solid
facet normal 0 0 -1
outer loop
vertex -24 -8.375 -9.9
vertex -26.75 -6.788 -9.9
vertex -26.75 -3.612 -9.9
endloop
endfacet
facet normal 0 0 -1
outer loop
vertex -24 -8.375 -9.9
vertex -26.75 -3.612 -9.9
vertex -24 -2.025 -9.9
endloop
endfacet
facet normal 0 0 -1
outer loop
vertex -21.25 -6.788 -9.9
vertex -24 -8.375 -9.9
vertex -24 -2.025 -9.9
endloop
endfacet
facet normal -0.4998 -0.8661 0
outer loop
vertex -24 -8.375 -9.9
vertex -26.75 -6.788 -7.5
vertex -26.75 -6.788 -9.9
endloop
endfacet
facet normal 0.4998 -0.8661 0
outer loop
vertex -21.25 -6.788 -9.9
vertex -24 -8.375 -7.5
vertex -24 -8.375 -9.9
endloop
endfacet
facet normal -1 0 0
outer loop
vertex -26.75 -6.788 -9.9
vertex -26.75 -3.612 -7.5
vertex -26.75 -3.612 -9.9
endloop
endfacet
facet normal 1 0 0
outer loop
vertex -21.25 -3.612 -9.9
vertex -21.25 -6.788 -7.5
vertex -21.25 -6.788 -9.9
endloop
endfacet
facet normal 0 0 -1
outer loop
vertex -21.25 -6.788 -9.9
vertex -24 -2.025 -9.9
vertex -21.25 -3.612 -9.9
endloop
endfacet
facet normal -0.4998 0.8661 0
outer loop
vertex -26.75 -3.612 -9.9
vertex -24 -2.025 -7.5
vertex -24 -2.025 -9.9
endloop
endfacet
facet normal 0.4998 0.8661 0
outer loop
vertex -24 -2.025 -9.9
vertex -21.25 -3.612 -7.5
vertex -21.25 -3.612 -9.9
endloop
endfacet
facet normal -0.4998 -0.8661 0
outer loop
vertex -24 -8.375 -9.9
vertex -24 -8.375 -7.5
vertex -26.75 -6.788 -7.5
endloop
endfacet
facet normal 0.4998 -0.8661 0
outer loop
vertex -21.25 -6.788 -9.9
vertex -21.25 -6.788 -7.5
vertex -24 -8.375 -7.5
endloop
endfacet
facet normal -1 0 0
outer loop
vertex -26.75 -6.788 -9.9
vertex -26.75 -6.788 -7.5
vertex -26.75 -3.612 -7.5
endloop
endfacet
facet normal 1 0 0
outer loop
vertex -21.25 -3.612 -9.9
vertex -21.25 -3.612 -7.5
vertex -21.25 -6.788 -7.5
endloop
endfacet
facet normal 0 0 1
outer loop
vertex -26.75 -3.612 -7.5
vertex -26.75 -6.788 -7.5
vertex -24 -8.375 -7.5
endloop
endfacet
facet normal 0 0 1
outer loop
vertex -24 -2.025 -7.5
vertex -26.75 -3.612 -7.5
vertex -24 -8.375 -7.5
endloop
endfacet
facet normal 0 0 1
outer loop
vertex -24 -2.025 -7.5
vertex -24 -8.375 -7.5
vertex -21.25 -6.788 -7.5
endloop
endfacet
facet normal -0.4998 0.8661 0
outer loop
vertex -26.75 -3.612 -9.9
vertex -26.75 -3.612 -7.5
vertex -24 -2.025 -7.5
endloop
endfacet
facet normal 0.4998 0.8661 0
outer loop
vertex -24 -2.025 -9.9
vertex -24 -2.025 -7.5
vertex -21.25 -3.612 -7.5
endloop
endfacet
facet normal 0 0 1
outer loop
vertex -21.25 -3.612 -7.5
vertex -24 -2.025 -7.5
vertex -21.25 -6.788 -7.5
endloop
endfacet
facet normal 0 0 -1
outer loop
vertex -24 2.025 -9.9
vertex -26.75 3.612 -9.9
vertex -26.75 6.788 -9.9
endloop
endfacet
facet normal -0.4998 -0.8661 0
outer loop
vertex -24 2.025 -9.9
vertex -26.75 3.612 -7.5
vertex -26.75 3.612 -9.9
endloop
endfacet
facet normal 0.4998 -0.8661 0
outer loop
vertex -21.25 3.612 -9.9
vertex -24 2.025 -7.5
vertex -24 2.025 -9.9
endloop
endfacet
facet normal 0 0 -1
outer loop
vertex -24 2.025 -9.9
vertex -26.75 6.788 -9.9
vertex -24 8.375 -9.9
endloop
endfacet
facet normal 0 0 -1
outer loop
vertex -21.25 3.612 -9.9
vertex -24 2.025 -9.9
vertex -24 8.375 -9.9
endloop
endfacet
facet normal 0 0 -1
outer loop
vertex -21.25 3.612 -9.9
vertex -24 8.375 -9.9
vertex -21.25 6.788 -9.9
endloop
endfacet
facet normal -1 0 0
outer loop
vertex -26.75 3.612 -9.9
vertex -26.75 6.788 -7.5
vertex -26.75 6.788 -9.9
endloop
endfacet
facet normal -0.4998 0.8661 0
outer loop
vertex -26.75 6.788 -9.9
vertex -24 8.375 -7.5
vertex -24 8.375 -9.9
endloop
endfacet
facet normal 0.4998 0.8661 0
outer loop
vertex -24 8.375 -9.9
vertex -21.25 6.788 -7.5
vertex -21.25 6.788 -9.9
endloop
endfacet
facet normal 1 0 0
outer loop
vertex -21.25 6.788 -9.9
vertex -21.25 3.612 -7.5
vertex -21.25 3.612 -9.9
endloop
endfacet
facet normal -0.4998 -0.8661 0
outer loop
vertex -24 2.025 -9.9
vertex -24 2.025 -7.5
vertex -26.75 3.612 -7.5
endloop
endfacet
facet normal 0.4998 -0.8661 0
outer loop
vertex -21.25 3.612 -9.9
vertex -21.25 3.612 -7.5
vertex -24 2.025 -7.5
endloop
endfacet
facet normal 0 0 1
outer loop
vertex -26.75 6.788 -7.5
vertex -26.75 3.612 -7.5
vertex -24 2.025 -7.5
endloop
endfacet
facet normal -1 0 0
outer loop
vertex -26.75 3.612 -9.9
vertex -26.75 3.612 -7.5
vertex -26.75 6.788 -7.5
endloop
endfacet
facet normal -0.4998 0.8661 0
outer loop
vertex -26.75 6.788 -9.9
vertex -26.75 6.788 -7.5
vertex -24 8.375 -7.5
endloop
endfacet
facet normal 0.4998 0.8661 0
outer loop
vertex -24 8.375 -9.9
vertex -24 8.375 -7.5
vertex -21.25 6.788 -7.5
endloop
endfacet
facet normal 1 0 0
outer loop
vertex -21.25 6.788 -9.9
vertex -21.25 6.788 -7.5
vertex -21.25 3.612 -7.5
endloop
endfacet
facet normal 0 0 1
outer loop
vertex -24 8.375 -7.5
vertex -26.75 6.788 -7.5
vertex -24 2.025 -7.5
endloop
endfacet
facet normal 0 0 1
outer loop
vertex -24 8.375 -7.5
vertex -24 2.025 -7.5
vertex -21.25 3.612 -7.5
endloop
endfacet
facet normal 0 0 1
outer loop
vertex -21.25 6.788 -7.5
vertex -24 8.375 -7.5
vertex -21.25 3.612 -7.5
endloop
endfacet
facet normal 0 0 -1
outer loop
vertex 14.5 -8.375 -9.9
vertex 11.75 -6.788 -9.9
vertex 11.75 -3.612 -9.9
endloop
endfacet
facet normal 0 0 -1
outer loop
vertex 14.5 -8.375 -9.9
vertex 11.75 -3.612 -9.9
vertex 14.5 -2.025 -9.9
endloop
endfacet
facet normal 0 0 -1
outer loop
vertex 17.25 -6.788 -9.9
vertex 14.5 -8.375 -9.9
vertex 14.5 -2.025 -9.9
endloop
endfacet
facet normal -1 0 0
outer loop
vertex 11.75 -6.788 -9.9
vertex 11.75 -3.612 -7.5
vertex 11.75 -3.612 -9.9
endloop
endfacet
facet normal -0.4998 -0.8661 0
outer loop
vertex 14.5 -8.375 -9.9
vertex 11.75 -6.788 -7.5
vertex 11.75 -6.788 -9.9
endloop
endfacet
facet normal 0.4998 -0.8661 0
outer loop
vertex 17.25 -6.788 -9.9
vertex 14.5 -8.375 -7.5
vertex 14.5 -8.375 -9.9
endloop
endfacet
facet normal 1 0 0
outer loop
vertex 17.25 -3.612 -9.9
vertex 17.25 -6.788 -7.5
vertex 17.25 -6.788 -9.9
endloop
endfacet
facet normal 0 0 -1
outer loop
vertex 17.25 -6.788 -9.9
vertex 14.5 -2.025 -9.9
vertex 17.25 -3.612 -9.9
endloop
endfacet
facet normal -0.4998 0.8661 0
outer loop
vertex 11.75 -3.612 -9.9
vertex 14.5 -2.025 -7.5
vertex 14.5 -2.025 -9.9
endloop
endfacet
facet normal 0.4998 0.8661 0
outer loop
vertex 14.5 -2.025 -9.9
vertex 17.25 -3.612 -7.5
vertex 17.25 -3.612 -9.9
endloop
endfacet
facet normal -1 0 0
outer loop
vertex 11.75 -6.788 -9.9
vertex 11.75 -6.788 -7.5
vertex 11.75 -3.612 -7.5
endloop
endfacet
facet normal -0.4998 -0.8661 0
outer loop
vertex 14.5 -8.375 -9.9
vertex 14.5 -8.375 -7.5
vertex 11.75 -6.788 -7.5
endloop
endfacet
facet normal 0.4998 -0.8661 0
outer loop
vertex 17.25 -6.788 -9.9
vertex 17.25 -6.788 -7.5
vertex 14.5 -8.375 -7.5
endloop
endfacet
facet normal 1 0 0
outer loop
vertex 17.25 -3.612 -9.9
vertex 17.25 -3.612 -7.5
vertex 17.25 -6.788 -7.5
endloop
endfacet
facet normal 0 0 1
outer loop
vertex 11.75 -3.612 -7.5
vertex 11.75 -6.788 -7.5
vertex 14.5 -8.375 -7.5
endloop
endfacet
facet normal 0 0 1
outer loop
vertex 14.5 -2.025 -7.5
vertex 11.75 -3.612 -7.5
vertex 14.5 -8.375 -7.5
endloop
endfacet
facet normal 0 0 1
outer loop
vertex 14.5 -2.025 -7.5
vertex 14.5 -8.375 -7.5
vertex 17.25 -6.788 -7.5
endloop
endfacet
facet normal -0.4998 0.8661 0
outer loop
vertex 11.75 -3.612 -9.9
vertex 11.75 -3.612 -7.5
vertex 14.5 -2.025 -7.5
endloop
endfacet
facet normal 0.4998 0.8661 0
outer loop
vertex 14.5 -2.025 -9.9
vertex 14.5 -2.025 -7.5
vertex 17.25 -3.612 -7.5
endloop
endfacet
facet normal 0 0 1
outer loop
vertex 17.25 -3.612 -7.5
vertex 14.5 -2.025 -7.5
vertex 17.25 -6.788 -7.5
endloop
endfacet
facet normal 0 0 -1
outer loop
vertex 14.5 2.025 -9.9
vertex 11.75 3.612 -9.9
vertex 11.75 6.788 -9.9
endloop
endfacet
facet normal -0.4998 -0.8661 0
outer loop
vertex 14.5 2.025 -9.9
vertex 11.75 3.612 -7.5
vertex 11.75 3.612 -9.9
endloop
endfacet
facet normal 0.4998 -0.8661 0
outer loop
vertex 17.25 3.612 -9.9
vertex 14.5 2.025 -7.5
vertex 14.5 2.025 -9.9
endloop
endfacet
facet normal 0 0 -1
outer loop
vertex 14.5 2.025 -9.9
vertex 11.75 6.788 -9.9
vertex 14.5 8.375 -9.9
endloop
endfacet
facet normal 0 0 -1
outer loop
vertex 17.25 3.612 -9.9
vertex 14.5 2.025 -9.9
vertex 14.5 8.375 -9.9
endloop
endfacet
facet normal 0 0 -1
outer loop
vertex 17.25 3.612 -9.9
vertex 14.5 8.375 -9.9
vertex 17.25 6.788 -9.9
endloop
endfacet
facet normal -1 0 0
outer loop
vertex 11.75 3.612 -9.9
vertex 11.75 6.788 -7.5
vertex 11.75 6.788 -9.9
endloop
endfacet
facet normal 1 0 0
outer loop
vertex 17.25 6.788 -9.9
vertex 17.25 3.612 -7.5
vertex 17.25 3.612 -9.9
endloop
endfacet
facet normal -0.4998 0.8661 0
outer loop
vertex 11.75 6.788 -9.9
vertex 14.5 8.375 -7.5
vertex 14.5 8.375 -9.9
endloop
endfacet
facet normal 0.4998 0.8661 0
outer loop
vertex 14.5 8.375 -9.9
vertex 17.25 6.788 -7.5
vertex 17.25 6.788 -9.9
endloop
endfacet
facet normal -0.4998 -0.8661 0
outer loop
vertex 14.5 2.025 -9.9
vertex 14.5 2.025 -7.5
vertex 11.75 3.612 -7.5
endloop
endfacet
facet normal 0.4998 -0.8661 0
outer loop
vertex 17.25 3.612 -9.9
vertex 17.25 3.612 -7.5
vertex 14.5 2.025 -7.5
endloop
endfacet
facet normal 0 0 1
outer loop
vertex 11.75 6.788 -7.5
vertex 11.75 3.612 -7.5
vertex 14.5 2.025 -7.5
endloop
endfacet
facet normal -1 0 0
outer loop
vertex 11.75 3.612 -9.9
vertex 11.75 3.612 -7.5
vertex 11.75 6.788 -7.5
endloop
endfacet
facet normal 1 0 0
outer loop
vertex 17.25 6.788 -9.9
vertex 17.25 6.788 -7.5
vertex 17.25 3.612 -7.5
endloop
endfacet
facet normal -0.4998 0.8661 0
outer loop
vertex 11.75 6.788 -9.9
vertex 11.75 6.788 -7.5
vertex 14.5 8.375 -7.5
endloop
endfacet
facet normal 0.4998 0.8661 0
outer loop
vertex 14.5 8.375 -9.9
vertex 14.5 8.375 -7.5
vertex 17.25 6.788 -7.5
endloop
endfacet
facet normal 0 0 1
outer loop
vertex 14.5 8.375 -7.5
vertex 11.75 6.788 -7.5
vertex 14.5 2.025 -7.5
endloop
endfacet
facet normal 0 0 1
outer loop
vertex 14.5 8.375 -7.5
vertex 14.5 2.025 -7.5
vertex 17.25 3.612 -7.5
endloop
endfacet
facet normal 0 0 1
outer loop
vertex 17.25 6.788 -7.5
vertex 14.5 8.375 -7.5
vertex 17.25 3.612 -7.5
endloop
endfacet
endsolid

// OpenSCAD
$fn = 50;

difference() {
	union() {
		translate(v = [-24, -5.2, -9.9]) {
			rotate(a = [0, 0, 30]) {
				linear_extrude(height = 2.4) {
					polygon(points = [[3.1754264805429417, 0.0], [1.5877132402714713, 2.75], [-1.5877132402714702, 2.7500000000000004], [-3.1754264805429417, 3.888775875324659e-16], [-1.5877132402714722, -2.7499999999999996], [1.5877132402714687, -2.7500000000000013]]);
				}
			}
		}
		translate(v = [-24, 5.2, -9.9]) {
			rotate(a = [0, 0, 30]) {
				linear_extrude(height = 2.4) {
					polygon(points = [[3.1754264805429417, 0.0], [1.5877132402714713, 2.75], [-1.5877132402714702, 2.7500000000000004], [-3.1754264805429417, 3.888775875324659e-16], [-1.5877132402714722, -2.7499999999999996], [1.5877132402714687, -2.7500000000000013]]);
				}
			}
		}
		translate(v = [14.5, -5.2, -9.9]) {
			rotate(a = [0, 0, 30]) {
				linear_extrude(height = 2.4) {
					polygon(points = [[3.1754264805429417, 0.0], [1.5877132402714713, 2.75], [-1.5877132402714702, 2.7500000000000004], [-3.1754264805429417, 3.888775875324659e-16], [-1.5877132402714722, -2.7499999999999996], [1.5877132402714687, -2.7500000000000013]]);
				}
			}
		}
		translate(v = [14.5, 5.2, -9.9]) {
			rotate(a = [0, 0, 30]) {
				linear_extrude(height = 2.4) {
					polygon(points = [[3.1754264805429417, 0.0], [1.5877132402714713, 2.75], [-1.5877132402714702, 2.7500000000000004], [-3.1754264805429417, 3.888775875324659e-16], [-1.5877132402714722, -2.7499999999999996], [1.5877132402714687, -2.7500000000000013]]);
				}
			}
		}
	}
	union();
}
